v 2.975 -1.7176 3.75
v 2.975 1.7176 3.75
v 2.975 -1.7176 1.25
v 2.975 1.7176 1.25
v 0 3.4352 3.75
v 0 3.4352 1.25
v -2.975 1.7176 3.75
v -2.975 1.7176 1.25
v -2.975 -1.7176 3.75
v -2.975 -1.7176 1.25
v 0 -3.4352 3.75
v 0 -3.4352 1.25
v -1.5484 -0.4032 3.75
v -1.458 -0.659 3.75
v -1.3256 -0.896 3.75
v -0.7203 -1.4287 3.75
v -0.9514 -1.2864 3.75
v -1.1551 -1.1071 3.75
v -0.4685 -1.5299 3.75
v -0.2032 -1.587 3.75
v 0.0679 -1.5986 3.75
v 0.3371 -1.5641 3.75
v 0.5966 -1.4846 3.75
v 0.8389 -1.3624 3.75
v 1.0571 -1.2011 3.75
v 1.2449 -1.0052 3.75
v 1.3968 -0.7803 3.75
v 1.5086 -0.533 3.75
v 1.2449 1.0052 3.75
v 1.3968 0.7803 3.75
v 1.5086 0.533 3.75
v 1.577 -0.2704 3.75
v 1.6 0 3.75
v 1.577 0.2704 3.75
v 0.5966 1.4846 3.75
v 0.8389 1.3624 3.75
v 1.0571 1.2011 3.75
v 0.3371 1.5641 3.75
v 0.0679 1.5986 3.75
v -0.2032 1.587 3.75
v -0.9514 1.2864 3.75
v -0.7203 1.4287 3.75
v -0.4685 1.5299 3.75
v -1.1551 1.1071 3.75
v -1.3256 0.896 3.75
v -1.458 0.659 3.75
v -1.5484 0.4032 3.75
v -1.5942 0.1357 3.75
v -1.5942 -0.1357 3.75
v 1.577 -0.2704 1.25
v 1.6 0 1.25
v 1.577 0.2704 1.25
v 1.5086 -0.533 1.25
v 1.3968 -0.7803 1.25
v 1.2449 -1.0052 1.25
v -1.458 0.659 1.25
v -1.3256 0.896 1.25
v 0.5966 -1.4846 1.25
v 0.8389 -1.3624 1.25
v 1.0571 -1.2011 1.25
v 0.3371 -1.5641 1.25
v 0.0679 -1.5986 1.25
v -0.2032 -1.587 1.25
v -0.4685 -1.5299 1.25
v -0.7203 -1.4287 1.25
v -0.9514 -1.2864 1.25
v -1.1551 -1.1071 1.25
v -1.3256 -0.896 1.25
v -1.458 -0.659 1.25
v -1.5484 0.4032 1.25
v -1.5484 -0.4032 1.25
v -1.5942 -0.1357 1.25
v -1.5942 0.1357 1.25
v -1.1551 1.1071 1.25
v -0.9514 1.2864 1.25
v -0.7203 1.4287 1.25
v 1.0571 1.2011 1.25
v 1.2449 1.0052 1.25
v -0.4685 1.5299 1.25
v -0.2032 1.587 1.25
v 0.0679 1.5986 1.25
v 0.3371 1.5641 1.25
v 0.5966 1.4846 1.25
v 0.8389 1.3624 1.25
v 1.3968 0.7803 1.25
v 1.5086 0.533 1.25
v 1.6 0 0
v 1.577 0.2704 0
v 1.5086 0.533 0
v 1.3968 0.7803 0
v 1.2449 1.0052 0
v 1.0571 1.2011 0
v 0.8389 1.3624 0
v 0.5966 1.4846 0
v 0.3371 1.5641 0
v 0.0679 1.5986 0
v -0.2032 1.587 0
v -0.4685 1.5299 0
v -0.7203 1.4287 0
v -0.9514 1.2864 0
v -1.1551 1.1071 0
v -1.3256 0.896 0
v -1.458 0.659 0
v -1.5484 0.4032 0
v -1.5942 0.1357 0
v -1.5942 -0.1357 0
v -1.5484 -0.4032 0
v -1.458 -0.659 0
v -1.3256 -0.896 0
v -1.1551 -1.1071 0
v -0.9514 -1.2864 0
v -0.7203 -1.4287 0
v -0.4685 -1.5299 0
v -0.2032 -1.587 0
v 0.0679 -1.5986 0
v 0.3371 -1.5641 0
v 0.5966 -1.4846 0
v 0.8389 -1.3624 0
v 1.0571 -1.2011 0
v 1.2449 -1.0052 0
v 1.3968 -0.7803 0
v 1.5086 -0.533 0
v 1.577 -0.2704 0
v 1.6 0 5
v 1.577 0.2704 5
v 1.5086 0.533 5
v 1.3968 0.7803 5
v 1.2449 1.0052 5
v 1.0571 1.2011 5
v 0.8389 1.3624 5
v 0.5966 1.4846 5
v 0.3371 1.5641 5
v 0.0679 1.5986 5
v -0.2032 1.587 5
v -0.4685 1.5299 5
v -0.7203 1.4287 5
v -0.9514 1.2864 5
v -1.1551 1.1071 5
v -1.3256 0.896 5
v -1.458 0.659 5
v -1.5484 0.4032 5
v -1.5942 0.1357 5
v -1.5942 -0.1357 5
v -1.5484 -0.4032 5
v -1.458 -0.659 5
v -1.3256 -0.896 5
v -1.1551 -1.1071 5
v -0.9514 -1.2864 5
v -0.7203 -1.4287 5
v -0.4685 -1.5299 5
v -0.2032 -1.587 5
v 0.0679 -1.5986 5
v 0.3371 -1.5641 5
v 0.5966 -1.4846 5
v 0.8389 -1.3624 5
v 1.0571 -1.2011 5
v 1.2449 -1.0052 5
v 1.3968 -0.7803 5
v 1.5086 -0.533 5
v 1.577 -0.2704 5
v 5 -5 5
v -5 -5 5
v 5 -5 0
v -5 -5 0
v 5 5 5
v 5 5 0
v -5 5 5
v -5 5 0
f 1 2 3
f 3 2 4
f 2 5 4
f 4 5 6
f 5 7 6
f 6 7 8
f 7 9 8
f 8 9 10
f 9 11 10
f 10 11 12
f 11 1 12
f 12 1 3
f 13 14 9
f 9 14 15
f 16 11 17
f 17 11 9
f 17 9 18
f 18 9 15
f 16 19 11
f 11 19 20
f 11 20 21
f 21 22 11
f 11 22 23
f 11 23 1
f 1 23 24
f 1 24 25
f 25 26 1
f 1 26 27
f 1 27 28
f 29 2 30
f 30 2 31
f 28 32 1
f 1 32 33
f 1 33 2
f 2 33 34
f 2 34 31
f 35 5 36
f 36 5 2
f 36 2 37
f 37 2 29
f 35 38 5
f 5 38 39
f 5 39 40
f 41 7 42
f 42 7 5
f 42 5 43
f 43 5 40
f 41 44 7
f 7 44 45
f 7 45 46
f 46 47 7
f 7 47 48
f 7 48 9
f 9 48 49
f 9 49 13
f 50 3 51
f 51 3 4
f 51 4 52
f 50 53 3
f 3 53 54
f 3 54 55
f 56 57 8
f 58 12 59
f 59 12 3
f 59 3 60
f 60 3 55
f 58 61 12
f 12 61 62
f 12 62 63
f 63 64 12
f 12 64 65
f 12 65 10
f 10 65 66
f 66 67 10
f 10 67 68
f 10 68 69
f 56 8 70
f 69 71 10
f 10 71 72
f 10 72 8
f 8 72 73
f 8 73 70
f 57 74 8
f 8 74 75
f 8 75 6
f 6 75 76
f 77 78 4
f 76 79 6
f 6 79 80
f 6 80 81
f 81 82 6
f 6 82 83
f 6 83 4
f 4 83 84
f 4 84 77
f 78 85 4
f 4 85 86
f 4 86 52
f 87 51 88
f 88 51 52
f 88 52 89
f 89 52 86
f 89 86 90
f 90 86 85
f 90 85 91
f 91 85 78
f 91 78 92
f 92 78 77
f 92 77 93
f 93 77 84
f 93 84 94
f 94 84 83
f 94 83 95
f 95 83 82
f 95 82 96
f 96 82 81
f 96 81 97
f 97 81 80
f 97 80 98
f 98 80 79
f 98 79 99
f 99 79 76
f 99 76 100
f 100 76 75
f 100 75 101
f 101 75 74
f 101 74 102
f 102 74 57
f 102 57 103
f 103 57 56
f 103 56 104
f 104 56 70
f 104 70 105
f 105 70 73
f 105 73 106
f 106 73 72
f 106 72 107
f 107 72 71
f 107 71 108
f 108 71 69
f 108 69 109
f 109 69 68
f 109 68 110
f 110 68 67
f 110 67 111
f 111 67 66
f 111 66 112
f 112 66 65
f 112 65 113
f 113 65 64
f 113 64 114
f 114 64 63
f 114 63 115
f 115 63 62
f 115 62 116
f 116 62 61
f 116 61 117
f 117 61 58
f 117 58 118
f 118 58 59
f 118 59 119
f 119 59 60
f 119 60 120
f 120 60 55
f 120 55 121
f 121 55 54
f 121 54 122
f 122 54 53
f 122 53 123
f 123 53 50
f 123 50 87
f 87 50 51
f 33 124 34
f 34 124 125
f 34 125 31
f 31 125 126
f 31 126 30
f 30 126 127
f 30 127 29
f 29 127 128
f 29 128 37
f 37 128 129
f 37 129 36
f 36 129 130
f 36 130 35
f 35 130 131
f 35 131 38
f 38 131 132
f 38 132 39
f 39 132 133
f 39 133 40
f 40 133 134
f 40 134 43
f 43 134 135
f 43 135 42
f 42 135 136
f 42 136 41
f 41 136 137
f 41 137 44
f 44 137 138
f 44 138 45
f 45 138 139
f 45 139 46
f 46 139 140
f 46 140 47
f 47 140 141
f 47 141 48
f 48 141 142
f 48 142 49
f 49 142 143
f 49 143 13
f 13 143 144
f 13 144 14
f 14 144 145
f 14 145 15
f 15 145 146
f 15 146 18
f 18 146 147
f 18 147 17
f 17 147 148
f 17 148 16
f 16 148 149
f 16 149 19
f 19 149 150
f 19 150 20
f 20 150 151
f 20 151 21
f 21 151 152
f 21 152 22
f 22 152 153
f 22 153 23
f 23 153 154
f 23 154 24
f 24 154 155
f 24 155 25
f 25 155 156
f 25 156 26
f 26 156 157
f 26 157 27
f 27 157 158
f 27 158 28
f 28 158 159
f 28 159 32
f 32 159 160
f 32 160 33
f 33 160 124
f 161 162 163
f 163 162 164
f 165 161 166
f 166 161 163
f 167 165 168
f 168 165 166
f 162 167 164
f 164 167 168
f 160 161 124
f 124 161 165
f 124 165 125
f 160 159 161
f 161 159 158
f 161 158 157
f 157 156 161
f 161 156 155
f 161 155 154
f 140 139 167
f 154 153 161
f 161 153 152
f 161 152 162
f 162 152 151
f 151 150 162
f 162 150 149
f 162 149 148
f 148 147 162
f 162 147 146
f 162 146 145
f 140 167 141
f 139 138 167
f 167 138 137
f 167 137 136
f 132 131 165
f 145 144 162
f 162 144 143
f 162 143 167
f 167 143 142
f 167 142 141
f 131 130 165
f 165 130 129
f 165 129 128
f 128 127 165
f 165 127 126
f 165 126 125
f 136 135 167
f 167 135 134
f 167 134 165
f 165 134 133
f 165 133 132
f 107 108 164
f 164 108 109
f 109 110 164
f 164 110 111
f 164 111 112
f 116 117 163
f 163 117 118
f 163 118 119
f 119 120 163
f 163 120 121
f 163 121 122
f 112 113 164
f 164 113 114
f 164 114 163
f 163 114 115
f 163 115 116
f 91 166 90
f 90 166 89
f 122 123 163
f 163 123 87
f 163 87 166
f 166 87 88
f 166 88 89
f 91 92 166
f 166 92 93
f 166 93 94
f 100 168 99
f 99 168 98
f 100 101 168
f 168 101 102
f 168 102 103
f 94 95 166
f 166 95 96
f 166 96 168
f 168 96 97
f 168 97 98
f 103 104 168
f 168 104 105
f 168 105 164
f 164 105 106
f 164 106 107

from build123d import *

# Parameters (mm, degrees)
SKETCH1_W           = 10
SKETCH1_H           = 10
BOSS_EXTRUDE1_DEPTH = 5
CUT_EXTRUDE1_START  = 1.25
CUT_EXTRUDE1_DEPTH  = 2.5
SKETCH2_R           = 1.6
CUT_EXTRUDE2_DEPTH  = 9.660254038


with BuildPart() as part:
    # Sketch1 → Boss-Extrude1 (new body)
    with BuildSketch(Plane.XY):
        Rectangle(SKETCH1_W, SKETCH1_H)
    extrude(amount=BOSS_EXTRUDE1_DEPTH)

    # Sketch1<3> → Cut-Extrude1 (cut)
    with BuildSketch(Plane.XY.offset(CUT_EXTRUDE1_START)):
        Polygon((2.975, 1.717617051), (0, 3.435234102), (-2.975, 1.717617051), (-2.975, -1.717617051), (0, -3.435234102), (2.975, -1.717617051), align=None)
    extrude(amount=CUT_EXTRUDE1_DEPTH, mode=Mode.SUBTRACT)

    # Sketch2 → Cut-Extrude2 (cut, through all)
    with BuildSketch(Plane.XY.offset(5)):
        Circle(SKETCH2_R)
    extrude(amount=-CUT_EXTRUDE2_DEPTH, mode=Mode.SUBTRACT)


solid = part.part
